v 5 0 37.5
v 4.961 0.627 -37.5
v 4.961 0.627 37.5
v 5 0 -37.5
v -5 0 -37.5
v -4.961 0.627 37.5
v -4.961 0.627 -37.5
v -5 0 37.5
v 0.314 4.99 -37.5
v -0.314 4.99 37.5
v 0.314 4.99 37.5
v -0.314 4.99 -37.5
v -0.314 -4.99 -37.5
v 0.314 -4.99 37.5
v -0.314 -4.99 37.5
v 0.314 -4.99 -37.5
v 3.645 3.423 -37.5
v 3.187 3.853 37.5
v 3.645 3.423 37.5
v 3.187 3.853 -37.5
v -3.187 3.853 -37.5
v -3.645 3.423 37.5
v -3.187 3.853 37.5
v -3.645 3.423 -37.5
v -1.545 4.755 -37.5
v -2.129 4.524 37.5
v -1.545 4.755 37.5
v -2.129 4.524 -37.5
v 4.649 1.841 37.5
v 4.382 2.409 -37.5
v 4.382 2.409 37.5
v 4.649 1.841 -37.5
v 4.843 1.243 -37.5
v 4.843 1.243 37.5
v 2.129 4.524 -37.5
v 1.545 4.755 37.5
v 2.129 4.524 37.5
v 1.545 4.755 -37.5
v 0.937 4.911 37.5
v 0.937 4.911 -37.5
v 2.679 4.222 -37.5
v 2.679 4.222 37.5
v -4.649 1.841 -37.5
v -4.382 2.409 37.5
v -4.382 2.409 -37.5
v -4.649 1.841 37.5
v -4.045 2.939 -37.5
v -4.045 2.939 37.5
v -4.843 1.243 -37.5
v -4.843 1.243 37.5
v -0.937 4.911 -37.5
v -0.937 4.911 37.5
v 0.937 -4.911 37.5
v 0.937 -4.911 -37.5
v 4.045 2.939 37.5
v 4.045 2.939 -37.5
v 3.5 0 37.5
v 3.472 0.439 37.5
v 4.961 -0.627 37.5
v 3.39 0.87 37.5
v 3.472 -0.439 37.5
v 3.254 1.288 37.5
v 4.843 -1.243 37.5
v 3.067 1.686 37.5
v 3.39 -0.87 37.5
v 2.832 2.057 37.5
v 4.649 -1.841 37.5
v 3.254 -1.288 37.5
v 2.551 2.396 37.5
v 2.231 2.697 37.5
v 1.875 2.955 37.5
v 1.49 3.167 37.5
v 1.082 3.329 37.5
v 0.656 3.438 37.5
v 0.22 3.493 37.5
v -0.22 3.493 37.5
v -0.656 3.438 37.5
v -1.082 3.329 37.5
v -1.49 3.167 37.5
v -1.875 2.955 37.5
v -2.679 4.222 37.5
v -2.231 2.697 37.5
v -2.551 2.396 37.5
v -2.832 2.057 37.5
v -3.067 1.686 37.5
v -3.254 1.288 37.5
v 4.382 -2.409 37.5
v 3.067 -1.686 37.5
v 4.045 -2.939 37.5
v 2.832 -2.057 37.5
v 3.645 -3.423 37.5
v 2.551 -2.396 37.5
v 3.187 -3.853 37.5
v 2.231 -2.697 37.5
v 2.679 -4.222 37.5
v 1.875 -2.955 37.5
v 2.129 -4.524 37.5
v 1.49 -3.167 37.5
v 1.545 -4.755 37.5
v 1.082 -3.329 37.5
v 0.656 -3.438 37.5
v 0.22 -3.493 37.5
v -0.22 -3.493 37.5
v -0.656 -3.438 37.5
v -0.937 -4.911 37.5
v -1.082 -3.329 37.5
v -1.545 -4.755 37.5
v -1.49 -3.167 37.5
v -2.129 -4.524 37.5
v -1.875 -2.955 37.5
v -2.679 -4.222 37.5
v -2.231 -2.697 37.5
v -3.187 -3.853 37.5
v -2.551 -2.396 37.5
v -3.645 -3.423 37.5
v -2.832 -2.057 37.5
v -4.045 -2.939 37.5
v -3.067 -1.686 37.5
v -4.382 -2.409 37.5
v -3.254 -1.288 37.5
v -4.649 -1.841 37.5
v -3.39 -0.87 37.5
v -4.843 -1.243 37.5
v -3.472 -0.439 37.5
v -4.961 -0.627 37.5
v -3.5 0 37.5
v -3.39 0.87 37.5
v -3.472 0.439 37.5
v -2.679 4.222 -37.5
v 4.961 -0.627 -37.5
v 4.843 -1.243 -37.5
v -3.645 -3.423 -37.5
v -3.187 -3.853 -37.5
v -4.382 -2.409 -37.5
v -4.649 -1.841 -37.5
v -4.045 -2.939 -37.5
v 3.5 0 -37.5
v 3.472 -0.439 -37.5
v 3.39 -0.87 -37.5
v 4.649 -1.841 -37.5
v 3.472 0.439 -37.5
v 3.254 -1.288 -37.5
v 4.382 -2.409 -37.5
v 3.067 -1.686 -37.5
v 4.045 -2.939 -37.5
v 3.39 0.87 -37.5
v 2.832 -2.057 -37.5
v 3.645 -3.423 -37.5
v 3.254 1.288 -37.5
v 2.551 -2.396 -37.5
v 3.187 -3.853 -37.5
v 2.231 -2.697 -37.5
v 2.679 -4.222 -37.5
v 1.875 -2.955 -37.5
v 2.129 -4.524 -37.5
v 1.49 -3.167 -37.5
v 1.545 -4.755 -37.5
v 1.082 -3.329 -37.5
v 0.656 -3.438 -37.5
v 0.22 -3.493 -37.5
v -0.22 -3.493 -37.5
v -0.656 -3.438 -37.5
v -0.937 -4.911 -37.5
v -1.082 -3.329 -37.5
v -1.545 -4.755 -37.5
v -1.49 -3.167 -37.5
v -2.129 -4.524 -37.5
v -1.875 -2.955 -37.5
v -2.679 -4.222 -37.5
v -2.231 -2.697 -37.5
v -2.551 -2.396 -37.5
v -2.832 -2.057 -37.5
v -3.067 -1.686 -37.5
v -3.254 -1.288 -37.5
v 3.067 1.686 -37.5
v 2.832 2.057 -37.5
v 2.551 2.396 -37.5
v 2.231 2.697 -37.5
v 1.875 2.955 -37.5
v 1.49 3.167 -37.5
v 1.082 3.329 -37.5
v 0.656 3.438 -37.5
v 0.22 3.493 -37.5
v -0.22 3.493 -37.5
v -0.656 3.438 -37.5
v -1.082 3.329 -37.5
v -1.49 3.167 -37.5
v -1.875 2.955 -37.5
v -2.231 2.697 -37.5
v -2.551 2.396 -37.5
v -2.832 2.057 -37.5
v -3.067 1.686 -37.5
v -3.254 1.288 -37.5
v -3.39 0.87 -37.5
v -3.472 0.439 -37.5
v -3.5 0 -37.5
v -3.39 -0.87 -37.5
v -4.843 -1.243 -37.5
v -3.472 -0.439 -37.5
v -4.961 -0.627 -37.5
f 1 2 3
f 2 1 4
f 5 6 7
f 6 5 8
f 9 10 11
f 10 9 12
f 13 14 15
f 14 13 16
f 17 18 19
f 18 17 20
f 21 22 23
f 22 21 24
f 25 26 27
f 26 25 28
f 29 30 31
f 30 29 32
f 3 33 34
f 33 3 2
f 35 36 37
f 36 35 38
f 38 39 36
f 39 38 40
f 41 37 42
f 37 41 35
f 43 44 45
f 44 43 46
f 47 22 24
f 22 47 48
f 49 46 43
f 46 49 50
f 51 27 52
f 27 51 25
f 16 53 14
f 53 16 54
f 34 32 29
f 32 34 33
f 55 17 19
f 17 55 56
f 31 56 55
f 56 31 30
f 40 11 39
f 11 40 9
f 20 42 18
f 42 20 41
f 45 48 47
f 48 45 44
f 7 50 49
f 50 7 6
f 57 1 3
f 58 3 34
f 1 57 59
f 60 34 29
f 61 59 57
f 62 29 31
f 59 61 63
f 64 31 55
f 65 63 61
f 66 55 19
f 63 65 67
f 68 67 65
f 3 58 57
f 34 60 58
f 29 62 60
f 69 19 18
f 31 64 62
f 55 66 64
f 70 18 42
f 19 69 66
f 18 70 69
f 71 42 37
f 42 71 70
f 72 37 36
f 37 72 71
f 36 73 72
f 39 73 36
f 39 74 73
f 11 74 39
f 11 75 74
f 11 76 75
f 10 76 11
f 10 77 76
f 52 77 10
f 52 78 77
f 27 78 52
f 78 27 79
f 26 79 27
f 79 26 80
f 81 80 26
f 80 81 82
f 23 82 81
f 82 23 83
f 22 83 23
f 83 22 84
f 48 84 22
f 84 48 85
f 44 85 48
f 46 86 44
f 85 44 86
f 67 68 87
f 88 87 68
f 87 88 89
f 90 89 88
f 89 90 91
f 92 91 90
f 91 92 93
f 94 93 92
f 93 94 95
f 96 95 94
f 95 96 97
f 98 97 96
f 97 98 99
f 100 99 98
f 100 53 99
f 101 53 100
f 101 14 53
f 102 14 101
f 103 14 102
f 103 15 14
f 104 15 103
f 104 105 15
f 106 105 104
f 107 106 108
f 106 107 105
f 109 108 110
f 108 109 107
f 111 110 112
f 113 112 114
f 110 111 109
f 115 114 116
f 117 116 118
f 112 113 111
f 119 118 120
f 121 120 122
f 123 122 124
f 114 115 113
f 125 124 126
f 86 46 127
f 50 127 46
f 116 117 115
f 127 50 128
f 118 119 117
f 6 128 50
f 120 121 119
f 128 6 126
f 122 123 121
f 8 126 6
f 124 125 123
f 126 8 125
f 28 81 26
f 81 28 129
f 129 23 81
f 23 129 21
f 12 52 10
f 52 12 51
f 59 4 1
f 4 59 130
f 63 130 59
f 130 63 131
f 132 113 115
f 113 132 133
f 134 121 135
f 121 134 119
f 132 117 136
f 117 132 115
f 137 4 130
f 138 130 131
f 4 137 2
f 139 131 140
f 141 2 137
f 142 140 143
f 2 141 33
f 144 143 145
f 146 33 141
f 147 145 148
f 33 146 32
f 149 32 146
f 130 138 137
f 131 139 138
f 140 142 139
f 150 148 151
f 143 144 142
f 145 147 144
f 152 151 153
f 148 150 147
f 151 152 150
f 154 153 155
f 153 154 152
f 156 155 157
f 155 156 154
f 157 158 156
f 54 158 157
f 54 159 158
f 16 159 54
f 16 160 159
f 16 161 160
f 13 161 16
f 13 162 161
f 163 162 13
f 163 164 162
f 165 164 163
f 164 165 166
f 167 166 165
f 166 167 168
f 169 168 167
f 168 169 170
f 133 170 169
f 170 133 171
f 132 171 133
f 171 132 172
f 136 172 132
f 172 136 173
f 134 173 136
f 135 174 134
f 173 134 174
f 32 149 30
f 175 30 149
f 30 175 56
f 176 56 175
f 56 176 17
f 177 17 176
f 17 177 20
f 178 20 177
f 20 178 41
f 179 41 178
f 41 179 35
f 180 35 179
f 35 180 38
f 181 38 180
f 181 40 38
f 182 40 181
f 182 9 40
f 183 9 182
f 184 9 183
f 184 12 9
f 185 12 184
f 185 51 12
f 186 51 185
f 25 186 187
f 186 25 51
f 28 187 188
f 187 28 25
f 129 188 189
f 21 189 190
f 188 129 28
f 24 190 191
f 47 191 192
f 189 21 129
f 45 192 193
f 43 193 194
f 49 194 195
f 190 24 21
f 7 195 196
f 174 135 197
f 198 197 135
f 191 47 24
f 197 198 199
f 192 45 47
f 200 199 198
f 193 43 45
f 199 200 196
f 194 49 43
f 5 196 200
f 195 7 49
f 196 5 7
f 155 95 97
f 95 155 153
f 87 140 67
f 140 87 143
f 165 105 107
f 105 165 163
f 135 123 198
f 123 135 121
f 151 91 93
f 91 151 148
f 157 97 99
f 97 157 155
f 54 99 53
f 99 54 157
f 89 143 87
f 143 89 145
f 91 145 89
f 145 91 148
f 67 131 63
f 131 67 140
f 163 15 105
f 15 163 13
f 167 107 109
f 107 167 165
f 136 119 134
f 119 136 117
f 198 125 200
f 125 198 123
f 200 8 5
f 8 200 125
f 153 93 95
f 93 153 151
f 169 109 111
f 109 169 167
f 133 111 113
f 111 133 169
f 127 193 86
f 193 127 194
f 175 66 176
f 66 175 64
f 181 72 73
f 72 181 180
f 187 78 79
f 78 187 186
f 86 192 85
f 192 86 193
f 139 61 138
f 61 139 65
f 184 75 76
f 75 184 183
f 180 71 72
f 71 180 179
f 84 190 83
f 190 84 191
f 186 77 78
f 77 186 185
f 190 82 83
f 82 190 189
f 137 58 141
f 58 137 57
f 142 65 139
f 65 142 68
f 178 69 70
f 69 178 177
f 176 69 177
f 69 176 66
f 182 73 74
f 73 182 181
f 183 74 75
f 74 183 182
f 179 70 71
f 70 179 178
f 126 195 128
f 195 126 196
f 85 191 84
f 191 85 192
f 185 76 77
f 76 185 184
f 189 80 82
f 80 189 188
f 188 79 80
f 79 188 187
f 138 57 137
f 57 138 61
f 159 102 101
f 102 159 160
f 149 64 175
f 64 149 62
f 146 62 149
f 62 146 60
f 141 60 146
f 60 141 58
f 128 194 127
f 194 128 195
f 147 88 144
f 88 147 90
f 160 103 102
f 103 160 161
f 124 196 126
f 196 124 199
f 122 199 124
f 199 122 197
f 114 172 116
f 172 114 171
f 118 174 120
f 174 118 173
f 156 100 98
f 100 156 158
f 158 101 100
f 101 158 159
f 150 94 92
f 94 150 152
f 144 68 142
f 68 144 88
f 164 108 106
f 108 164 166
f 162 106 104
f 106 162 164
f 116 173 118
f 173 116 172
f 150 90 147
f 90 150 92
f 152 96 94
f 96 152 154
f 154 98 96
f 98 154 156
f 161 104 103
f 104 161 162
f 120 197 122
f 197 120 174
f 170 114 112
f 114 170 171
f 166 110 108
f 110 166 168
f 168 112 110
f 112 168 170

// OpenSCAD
$fn = 50;


difference() {
	union() {
		translate(v = [0, 0, -37.5000000000]) {
			cylinder(h = 75, r = 5.0000000000);
		}
	}
	union() {
		translate(v = [0, 0, -100.0000000000]) {
			cylinder(h = 200, r = 3.5000000000);
		}
	}
}
